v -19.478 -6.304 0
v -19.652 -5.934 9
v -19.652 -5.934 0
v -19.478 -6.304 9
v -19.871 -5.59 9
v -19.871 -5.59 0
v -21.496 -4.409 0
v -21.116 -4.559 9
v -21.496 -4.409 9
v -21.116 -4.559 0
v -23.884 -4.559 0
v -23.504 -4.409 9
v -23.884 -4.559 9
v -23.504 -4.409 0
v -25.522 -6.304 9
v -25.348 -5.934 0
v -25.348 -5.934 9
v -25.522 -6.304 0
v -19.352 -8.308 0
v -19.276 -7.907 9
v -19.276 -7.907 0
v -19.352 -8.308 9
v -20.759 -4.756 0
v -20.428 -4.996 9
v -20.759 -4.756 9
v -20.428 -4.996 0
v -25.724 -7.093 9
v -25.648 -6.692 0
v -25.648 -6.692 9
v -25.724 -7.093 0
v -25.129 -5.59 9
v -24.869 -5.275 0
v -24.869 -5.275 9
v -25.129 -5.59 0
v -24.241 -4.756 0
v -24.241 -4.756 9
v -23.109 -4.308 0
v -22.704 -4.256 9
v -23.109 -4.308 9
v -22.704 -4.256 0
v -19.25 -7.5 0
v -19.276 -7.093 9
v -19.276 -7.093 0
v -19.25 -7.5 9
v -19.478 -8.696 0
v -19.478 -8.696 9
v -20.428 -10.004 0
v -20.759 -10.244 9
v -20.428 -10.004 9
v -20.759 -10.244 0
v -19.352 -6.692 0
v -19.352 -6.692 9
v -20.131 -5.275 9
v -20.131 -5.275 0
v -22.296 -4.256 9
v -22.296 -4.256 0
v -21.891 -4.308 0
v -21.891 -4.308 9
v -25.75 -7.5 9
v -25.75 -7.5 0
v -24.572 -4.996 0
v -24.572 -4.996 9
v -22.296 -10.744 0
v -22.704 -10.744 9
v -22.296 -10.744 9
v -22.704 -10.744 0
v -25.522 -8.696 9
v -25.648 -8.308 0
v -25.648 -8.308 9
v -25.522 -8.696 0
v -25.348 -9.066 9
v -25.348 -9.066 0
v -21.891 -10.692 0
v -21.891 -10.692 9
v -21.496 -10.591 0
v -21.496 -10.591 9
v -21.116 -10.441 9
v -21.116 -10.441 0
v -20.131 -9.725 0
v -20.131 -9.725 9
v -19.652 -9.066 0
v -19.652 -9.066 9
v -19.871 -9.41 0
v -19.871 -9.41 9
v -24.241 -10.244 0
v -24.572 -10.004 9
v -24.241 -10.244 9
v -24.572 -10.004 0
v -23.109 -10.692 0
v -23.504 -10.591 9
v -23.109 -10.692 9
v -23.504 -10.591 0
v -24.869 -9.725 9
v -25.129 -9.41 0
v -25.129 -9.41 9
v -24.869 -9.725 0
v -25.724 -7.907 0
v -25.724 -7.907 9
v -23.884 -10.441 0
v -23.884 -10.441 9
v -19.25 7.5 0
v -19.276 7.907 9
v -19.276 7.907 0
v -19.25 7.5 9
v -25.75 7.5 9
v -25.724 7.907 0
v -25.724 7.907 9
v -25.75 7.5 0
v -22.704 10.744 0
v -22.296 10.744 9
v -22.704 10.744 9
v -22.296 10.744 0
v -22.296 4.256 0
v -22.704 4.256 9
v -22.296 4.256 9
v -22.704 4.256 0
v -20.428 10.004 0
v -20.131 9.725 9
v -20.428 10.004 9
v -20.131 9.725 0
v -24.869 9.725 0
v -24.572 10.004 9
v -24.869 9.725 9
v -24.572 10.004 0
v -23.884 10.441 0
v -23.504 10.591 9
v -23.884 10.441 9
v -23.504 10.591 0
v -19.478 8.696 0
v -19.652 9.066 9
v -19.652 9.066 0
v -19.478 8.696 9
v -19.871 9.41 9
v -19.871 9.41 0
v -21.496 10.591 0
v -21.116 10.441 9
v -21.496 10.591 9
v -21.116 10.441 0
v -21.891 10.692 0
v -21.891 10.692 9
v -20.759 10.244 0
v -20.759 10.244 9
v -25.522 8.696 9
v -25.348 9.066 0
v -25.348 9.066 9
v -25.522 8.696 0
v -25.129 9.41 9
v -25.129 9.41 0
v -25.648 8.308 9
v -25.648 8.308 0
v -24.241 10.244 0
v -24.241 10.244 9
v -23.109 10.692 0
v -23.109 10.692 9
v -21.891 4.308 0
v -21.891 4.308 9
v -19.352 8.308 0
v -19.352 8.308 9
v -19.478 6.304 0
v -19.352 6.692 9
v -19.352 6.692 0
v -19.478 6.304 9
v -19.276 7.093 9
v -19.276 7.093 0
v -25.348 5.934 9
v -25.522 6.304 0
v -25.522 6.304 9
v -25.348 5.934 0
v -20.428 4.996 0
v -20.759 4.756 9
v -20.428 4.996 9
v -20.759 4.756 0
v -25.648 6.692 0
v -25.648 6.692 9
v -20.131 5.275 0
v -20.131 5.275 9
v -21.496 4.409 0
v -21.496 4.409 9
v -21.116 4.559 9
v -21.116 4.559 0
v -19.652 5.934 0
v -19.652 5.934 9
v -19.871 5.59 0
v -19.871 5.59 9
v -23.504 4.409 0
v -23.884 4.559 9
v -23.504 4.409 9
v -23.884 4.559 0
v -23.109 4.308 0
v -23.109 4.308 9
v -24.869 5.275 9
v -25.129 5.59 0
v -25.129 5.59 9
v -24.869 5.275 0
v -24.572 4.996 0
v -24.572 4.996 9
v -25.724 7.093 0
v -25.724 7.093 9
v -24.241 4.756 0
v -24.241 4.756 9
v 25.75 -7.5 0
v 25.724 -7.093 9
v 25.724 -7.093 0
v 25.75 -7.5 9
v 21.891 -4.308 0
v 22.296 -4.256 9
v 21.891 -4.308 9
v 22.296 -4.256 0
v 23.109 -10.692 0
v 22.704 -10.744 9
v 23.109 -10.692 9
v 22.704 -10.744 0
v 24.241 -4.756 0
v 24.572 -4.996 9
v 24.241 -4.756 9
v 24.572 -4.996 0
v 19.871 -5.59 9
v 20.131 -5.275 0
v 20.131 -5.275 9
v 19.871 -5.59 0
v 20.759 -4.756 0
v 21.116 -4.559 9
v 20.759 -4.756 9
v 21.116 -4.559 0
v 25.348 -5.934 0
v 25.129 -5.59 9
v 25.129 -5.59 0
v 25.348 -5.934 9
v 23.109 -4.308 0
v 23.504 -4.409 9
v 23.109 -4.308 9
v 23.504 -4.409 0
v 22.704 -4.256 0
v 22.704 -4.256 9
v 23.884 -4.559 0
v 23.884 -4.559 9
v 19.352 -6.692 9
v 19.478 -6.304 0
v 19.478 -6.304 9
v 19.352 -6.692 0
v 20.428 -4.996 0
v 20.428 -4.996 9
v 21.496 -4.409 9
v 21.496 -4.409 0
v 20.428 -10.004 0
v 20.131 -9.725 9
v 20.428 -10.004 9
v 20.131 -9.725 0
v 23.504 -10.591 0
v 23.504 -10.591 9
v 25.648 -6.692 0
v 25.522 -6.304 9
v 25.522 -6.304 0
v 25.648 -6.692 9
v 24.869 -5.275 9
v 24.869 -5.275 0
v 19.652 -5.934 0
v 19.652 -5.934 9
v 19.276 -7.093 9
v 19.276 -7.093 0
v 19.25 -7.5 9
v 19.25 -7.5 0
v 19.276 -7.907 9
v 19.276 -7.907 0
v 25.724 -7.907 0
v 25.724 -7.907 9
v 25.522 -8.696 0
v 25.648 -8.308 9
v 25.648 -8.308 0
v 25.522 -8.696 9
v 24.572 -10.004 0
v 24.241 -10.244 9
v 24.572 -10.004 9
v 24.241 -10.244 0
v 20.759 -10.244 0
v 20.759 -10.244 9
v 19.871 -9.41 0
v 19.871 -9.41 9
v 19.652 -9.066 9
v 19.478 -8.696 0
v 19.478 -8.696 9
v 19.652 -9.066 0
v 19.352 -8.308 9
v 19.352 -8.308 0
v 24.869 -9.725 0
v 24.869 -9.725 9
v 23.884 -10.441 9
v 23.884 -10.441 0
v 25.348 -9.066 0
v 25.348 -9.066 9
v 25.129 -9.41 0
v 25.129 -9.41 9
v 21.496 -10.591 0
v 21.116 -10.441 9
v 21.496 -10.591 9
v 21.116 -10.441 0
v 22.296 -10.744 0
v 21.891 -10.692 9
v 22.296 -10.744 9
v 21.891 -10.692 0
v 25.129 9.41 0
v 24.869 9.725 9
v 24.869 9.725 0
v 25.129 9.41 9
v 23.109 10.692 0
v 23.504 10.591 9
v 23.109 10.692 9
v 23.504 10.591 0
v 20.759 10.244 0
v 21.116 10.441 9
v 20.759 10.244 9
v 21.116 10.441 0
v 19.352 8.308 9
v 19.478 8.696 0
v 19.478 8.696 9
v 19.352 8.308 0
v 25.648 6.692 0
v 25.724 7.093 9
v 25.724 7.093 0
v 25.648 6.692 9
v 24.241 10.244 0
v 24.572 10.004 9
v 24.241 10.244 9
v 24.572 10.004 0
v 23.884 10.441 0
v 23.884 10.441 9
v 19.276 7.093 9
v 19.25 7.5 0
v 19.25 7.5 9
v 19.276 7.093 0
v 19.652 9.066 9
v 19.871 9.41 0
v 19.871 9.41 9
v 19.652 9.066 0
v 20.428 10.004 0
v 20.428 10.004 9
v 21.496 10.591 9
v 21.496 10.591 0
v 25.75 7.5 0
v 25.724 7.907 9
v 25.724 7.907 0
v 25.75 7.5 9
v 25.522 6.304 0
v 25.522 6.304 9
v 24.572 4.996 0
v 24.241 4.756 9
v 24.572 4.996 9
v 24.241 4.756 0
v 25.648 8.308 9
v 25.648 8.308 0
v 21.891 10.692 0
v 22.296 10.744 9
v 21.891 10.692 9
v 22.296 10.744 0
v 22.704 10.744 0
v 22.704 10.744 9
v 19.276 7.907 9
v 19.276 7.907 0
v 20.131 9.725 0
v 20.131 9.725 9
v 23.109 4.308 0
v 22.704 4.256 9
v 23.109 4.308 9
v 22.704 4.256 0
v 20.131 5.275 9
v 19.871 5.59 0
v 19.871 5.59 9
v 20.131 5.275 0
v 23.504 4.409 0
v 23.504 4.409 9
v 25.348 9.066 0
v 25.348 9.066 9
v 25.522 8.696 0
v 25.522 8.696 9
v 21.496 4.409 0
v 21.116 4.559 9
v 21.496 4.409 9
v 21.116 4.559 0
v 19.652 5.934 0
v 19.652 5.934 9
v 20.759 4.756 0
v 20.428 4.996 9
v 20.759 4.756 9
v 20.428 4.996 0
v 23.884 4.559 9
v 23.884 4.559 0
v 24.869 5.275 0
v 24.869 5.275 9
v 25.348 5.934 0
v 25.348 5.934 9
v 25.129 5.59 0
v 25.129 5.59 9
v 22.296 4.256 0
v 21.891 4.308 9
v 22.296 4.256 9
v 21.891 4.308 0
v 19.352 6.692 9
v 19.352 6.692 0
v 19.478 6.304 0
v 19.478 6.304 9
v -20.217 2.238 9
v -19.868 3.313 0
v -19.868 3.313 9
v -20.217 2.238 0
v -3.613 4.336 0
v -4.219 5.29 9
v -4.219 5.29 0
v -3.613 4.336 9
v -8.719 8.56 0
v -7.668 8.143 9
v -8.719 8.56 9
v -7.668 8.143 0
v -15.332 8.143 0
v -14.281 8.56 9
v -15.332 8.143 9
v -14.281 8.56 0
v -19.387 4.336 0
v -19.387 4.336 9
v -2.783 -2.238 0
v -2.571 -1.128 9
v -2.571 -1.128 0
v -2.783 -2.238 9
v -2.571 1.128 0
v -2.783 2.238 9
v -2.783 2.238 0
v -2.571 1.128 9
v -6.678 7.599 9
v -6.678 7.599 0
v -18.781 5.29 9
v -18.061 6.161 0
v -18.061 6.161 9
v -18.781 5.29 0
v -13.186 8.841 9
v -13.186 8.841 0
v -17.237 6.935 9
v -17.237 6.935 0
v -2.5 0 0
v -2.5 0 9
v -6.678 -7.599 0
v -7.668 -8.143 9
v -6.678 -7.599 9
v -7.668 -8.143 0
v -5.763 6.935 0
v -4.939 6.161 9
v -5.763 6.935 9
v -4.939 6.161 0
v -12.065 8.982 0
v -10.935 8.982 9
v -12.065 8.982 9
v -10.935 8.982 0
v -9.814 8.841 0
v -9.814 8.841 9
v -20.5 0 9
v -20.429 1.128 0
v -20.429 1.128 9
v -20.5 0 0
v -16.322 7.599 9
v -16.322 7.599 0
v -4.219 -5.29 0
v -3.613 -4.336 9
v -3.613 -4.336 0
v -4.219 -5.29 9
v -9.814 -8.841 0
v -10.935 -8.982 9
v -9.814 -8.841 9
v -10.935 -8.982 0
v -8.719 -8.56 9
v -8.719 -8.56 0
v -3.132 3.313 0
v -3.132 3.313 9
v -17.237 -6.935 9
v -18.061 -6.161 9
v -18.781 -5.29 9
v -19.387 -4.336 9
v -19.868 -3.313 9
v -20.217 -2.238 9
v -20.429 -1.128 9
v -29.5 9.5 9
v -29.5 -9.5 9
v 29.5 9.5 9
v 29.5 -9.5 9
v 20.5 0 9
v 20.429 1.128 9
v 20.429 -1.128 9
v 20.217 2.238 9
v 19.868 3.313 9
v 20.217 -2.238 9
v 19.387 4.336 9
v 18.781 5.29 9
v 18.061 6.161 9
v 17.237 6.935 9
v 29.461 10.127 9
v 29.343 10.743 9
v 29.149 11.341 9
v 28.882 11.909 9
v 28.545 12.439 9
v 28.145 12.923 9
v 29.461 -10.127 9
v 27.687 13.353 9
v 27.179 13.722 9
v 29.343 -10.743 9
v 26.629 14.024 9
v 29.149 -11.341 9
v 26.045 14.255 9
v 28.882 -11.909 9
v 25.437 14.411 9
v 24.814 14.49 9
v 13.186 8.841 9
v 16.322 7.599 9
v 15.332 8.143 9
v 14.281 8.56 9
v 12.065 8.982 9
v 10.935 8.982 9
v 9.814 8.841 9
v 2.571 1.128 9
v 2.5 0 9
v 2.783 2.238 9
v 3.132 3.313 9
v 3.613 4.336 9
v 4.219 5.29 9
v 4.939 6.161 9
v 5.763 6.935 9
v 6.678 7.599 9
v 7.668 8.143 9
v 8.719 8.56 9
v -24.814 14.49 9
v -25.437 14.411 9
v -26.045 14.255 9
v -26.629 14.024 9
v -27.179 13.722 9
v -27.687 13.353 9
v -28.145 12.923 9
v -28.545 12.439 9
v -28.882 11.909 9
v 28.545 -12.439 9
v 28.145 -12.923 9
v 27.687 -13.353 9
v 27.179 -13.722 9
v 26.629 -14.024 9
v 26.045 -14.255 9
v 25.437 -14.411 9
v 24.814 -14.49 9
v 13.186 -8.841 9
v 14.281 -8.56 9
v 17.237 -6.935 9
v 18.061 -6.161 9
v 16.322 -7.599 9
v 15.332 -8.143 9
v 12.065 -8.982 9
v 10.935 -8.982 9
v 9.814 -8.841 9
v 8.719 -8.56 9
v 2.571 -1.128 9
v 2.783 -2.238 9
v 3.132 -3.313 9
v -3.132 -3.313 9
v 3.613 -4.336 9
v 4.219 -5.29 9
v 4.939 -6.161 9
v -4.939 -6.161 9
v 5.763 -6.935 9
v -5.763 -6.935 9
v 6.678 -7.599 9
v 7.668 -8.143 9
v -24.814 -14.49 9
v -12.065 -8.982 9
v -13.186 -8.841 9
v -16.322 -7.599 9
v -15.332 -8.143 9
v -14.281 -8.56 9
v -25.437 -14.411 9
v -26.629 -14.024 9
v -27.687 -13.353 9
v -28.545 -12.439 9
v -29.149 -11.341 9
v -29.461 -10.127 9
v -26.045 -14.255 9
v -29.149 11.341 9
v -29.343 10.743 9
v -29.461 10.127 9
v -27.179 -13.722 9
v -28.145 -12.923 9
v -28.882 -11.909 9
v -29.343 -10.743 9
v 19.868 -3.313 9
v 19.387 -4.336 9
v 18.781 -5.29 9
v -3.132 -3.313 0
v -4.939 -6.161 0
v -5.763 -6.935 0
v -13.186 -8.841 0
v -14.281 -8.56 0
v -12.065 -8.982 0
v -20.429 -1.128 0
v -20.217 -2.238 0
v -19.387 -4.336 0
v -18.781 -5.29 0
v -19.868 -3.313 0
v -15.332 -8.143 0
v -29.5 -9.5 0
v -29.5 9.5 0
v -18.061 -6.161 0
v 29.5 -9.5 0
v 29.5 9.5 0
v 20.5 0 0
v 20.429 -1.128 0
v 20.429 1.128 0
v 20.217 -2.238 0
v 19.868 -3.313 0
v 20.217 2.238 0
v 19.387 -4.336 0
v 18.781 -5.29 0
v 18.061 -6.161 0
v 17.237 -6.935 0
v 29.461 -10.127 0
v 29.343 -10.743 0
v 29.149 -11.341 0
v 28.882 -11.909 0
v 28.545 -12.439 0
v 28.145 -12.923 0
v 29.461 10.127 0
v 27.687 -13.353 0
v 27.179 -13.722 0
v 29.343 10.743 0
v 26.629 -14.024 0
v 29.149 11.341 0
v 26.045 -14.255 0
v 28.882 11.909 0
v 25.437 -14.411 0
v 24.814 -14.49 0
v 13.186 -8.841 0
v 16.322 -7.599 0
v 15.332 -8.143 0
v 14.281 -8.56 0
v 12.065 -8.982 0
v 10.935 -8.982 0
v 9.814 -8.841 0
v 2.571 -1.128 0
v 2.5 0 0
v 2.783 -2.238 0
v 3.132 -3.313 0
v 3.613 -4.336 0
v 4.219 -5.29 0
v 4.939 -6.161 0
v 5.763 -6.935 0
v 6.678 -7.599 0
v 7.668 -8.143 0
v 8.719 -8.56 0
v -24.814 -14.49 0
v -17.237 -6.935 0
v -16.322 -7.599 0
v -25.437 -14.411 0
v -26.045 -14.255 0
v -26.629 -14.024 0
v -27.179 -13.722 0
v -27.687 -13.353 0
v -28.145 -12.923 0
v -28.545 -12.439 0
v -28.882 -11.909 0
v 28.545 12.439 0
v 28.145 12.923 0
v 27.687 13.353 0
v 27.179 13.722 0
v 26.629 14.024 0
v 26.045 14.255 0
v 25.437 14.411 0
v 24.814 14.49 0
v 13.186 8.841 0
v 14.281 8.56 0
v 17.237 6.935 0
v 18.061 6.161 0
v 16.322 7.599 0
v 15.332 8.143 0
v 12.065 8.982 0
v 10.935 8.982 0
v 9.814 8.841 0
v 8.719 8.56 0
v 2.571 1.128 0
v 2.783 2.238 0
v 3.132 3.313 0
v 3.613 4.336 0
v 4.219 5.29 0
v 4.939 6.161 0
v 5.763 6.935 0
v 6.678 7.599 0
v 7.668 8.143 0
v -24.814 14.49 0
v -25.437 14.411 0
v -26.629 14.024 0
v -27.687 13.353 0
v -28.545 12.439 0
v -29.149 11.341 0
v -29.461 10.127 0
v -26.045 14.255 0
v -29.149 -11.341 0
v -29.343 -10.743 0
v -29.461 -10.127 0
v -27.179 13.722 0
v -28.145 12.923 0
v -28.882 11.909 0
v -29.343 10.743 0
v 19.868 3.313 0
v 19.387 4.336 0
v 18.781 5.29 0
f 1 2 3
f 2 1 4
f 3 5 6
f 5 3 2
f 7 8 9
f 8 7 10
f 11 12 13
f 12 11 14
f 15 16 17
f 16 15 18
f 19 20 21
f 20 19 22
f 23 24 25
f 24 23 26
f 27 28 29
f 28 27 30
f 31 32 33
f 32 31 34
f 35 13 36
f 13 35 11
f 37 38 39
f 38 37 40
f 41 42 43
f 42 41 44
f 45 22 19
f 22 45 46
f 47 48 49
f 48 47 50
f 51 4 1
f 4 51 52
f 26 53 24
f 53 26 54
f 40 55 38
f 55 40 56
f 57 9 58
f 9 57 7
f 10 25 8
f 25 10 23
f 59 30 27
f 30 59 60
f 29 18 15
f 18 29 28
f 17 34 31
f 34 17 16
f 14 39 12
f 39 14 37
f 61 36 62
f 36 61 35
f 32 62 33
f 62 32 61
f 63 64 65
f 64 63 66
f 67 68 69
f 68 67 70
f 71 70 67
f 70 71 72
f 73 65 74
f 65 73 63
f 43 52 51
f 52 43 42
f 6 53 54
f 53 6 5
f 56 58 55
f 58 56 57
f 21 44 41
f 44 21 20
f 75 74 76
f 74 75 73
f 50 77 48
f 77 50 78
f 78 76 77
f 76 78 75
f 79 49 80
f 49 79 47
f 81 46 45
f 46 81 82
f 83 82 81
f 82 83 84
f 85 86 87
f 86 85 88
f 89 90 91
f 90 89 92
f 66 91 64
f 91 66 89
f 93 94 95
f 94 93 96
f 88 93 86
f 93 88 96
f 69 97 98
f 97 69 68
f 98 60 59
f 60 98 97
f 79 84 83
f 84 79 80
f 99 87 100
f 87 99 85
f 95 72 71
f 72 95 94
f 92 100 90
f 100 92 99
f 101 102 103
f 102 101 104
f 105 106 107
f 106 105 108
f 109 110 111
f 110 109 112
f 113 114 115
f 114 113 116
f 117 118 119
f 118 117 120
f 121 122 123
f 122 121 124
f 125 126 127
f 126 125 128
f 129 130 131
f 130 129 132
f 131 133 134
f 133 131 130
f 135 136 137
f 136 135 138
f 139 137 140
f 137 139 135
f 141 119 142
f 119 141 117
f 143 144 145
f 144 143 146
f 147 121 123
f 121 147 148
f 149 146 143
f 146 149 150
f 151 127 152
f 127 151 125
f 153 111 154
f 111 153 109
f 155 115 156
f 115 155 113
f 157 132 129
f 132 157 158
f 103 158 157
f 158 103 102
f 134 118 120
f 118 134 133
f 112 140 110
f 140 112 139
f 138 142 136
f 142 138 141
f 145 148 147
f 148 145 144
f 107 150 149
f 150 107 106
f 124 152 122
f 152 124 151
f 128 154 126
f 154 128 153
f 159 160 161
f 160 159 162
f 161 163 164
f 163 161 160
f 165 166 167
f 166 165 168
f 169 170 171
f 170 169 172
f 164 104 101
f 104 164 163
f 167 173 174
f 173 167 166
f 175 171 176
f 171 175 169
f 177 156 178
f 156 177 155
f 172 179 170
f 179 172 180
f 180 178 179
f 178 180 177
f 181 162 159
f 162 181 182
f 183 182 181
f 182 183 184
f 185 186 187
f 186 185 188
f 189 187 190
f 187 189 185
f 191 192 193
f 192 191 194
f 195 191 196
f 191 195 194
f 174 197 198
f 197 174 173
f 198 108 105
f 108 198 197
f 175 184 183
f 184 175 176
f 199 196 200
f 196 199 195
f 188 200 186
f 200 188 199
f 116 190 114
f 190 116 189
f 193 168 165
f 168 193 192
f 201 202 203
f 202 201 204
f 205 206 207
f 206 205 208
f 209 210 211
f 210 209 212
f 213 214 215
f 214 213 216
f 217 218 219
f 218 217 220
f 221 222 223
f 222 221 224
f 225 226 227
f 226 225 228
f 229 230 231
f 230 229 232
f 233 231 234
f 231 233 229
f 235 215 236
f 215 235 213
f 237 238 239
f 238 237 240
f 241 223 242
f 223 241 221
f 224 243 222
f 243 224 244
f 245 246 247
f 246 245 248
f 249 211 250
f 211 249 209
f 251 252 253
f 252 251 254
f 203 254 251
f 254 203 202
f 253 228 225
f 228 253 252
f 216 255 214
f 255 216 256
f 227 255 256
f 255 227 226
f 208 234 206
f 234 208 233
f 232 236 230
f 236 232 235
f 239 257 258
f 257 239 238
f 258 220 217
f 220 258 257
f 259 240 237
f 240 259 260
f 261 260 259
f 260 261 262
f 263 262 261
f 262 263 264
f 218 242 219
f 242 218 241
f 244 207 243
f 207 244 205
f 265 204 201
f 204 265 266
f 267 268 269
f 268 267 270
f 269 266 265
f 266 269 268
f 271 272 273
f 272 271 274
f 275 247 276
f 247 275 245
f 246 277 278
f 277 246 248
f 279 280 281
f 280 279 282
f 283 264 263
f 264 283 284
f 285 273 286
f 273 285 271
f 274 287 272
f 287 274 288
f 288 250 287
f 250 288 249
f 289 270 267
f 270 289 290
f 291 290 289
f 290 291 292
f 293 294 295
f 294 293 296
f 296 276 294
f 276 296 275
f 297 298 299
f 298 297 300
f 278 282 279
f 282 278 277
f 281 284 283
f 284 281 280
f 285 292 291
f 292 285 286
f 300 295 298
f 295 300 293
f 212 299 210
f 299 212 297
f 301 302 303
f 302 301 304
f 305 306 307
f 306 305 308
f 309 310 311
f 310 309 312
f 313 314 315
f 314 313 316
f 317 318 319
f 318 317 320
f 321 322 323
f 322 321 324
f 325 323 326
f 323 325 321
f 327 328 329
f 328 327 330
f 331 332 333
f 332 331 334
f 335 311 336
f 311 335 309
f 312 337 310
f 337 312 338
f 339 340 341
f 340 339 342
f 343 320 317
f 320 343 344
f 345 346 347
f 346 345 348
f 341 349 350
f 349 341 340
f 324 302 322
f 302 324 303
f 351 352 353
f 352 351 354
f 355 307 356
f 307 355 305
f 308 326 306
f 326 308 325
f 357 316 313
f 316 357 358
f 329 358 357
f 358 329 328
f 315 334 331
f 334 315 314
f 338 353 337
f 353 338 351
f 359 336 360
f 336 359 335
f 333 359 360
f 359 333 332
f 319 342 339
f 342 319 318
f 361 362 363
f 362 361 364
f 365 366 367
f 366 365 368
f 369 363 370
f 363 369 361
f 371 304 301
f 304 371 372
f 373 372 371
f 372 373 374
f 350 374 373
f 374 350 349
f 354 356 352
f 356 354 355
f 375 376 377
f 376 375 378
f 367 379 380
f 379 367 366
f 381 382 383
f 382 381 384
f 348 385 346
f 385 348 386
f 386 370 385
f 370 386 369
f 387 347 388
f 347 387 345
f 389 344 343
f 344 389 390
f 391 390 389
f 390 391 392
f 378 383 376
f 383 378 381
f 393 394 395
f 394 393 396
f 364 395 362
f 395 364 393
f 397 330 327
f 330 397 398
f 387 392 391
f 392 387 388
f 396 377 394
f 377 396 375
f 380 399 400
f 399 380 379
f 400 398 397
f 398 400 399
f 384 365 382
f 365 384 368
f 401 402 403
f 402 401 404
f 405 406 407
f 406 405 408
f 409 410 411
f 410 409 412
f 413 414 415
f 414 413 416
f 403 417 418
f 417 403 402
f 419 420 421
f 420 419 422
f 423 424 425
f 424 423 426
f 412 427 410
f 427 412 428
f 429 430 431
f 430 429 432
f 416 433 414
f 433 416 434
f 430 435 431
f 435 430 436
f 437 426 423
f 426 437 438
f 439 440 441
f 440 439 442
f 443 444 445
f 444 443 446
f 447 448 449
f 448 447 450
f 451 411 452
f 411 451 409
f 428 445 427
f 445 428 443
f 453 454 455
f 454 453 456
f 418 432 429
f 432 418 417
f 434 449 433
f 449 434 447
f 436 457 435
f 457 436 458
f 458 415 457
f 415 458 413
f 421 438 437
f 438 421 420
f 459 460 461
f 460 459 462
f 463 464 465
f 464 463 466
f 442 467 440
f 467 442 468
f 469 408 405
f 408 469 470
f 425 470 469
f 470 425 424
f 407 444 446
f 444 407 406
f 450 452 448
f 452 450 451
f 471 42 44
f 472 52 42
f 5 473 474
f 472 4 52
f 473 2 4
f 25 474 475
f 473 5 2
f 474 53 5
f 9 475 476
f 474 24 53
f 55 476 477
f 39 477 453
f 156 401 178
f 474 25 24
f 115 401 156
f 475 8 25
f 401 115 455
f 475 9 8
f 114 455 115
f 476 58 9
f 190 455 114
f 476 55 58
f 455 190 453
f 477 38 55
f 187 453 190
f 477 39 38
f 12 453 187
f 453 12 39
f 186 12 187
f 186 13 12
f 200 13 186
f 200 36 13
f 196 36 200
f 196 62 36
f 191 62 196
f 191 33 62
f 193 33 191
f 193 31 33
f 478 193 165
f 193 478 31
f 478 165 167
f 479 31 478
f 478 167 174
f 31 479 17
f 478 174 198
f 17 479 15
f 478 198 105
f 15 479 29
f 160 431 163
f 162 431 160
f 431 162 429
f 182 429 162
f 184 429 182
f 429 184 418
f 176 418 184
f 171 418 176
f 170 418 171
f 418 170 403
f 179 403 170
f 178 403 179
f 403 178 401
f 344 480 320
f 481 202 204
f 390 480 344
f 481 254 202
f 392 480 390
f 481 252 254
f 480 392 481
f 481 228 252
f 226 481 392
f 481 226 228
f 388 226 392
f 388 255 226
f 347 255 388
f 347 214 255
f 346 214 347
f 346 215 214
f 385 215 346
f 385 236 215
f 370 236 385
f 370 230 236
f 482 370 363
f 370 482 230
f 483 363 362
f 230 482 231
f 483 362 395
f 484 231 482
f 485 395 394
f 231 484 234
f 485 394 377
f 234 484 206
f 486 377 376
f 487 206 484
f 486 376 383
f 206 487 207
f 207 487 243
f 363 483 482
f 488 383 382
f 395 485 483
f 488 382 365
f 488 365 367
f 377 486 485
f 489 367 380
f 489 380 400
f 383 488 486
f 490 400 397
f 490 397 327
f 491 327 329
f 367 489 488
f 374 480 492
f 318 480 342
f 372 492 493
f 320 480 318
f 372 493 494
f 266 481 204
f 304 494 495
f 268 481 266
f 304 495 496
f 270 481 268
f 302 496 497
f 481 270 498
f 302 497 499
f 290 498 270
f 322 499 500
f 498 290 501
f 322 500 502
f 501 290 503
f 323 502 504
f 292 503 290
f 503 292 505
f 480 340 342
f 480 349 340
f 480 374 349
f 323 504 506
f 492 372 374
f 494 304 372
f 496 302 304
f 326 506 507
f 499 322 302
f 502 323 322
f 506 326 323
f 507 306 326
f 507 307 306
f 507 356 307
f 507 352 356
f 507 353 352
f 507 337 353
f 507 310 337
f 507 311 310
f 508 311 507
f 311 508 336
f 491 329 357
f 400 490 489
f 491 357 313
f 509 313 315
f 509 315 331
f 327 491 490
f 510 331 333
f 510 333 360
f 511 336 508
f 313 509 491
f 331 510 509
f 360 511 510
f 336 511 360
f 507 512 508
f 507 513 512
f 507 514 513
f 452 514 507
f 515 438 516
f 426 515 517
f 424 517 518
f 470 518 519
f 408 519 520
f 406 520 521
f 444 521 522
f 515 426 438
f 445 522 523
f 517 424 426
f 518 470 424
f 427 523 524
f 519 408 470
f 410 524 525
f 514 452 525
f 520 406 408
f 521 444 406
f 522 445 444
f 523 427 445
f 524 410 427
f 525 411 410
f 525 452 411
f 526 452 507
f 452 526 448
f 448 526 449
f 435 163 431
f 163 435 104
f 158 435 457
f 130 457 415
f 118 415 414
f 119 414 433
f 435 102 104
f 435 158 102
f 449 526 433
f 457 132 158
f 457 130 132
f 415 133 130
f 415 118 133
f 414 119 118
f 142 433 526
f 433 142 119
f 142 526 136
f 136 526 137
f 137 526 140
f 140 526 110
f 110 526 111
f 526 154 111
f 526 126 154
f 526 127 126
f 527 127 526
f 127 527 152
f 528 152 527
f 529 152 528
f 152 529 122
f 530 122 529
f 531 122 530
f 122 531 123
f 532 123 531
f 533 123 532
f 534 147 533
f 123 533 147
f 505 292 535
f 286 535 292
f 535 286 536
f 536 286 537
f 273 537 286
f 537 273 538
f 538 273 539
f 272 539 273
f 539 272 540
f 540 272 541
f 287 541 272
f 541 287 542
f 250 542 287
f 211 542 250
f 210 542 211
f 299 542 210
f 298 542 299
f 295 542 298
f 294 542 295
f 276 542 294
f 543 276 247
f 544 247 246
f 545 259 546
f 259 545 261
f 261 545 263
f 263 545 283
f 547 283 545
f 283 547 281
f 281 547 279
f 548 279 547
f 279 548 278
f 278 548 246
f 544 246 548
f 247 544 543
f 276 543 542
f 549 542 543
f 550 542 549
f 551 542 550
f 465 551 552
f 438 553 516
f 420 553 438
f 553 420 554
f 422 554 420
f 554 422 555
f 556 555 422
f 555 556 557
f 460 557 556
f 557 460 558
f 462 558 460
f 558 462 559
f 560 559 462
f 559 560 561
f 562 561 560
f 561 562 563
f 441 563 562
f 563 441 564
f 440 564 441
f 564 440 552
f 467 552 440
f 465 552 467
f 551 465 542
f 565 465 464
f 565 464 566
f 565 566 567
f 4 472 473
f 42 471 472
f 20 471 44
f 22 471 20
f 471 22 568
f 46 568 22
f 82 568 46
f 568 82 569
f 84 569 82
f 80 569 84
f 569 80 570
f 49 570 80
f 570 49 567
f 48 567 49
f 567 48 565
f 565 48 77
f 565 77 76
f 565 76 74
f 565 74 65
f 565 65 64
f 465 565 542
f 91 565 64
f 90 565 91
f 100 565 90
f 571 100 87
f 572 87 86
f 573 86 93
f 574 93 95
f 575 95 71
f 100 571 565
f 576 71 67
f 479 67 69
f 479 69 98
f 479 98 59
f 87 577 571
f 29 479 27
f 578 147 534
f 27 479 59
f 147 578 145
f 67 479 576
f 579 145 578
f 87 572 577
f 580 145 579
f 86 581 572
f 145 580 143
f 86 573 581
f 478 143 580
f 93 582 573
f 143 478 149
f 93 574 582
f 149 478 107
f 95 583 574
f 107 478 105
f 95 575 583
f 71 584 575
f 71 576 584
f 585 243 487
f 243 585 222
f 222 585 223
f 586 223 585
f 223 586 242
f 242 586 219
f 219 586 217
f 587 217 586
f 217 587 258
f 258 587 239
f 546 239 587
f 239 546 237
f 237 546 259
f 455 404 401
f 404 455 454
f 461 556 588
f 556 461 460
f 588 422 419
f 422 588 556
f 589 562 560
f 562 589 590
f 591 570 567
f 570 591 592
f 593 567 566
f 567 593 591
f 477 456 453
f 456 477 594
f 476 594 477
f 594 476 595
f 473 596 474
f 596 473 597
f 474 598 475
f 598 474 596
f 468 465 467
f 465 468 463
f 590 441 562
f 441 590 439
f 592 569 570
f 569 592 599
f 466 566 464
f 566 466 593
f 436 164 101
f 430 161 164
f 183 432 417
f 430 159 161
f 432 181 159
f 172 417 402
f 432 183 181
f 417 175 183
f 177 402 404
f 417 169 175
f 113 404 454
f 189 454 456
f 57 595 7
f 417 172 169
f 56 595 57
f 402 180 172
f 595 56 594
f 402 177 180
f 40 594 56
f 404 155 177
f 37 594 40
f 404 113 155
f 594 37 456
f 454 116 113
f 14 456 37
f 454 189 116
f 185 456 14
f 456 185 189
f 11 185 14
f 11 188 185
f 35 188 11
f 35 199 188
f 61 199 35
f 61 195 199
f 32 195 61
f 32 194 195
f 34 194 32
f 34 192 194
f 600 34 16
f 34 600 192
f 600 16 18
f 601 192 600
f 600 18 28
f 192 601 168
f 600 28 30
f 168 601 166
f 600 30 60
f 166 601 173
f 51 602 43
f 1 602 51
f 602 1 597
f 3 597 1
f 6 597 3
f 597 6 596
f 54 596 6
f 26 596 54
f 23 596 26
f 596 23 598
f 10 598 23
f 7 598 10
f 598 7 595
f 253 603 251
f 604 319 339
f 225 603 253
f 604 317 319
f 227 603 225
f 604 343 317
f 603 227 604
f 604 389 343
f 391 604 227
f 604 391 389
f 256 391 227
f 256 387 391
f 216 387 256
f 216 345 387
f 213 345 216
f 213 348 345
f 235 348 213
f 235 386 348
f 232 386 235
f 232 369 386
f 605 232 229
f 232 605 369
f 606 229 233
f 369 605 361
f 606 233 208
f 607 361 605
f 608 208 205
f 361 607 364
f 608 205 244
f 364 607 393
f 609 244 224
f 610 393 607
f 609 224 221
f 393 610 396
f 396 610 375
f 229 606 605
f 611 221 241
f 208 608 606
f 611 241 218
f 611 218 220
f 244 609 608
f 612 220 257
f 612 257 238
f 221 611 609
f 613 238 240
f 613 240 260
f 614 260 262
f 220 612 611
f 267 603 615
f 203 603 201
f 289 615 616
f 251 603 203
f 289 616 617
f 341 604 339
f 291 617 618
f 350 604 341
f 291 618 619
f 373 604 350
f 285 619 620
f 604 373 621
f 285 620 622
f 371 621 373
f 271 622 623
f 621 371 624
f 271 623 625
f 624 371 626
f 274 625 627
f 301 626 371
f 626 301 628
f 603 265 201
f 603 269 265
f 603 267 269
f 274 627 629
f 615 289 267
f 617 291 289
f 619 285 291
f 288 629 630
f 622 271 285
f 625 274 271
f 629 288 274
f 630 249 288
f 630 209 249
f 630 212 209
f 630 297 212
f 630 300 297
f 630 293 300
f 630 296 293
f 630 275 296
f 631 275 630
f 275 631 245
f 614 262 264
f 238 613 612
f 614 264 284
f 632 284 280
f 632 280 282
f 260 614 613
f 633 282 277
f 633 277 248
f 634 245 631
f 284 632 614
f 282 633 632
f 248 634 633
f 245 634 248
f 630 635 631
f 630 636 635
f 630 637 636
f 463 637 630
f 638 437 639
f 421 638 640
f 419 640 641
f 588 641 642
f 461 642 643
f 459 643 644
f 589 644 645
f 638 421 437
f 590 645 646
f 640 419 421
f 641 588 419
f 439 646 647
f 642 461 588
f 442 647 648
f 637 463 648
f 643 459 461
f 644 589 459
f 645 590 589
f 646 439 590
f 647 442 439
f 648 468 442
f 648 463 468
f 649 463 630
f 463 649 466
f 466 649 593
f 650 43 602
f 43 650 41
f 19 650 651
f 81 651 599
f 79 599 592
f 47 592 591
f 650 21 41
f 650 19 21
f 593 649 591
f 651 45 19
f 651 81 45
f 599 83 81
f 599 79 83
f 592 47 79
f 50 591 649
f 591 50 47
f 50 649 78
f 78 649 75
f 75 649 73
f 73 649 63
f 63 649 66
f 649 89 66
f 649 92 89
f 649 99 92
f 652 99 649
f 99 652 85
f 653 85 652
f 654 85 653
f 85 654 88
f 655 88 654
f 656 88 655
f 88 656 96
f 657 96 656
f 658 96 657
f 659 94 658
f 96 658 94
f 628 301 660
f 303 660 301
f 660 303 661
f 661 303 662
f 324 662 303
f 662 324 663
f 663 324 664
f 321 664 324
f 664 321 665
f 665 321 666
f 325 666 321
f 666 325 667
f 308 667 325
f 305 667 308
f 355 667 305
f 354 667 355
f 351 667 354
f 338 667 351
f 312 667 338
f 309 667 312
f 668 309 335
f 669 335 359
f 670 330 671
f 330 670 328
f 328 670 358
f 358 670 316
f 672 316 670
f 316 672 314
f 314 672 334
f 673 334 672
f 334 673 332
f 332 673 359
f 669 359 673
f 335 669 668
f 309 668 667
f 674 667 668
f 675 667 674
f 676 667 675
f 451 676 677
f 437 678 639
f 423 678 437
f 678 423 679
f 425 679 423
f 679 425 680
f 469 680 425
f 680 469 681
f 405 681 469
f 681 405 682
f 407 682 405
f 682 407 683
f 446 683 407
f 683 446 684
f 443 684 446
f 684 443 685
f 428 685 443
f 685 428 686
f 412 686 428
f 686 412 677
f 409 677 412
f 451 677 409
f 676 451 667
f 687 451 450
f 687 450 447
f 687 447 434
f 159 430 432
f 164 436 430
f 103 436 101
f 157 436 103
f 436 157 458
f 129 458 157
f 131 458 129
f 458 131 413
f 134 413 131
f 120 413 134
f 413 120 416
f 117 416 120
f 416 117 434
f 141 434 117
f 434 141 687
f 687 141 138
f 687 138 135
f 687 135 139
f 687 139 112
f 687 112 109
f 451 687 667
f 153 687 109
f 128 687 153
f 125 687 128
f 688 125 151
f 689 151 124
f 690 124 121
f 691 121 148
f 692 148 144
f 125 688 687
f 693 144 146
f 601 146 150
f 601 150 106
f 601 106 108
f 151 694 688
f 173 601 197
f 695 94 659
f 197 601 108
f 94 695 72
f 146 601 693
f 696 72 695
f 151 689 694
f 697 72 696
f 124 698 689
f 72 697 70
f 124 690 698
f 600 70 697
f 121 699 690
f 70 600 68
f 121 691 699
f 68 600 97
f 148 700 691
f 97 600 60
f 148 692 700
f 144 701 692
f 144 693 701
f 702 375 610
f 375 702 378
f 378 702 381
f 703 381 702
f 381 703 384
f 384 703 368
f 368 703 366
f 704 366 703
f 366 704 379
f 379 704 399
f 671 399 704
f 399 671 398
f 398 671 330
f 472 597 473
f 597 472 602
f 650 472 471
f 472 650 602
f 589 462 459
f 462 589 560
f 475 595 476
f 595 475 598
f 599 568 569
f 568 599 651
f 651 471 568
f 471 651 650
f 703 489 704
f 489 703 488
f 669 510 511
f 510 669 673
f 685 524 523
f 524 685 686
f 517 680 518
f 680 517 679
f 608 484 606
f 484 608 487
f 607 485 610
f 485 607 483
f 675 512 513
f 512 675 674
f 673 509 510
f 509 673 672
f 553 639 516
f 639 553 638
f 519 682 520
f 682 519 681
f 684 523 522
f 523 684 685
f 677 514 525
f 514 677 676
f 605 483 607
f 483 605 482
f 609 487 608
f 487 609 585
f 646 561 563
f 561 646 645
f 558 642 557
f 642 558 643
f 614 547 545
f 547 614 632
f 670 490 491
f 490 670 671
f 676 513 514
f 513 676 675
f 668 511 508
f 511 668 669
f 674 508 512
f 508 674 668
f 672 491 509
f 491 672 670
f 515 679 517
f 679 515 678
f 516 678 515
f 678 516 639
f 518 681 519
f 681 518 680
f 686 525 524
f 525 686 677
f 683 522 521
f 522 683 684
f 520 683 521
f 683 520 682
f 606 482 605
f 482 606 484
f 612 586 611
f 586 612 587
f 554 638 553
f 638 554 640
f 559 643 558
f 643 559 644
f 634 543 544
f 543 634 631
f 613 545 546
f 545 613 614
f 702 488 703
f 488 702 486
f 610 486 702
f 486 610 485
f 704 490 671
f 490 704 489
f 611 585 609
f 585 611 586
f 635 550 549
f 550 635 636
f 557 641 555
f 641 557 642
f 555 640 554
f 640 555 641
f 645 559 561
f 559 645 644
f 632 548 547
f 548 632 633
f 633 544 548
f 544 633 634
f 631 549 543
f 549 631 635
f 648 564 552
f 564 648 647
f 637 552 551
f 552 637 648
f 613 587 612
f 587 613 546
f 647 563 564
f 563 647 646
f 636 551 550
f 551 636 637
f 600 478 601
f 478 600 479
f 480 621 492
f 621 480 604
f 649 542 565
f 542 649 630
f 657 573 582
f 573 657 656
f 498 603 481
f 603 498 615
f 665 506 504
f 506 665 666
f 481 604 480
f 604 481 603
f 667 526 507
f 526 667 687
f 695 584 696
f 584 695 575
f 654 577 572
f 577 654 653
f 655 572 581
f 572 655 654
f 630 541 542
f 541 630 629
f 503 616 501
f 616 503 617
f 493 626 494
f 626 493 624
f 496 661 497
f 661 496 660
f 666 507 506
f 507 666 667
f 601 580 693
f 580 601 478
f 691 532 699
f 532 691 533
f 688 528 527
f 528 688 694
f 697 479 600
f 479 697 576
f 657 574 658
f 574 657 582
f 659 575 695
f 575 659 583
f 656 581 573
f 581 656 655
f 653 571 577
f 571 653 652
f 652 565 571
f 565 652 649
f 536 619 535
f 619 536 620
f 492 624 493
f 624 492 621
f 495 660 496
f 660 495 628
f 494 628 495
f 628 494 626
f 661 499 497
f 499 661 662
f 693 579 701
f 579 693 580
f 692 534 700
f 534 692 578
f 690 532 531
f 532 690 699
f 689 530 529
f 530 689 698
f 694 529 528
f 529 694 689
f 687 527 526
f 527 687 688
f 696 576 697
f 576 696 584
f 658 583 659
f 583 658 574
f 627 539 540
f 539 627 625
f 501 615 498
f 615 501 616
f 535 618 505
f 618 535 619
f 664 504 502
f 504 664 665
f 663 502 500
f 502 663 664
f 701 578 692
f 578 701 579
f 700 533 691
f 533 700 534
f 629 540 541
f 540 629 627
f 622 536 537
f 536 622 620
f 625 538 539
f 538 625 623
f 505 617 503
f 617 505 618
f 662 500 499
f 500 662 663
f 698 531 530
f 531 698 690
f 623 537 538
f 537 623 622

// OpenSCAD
$fn = 50;


difference() {
	union() {
		hull() {
			translate(v = [-24.5000000000, 9.5000000000, 0]) {
				cylinder(h = 9, r = 5);
			}
			translate(v = [24.5000000000, 9.5000000000, 0]) {
				cylinder(h = 9, r = 5);
			}
			translate(v = [-24.5000000000, -9.5000000000, 0]) {
				cylinder(h = 9, r = 5);
			}
			translate(v = [24.5000000000, -9.5000000000, 0]) {
				cylinder(h = 9, r = 5);
			}
		}
	}
	union() {
		#translate(v = [-22.5000000000, -7.5000000000, -100.0000000000]) {
			cylinder(h = 200, r = 3.2500000000);
		}
		#translate(v = [-22.5000000000, 7.5000000000, -100.0000000000]) {
			cylinder(h = 200, r = 3.2500000000);
		}
		#translate(v = [22.5000000000, -7.5000000000, -100.0000000000]) {
			cylinder(h = 200, r = 3.2500000000);
		}
		#translate(v = [22.5000000000, 7.5000000000, -100.0000000000]) {
			cylinder(h = 200, r = 3.2500000000);
		}
		#translate(v = [-11.5000000000, 0, 0]) {
			cylinder(h = 9, r = 9.0000000000);
		}
		#translate(v = [11.5000000000, 0, 0]) {
			cylinder(h = 9, r = 9.0000000000);
		}
	}
}
